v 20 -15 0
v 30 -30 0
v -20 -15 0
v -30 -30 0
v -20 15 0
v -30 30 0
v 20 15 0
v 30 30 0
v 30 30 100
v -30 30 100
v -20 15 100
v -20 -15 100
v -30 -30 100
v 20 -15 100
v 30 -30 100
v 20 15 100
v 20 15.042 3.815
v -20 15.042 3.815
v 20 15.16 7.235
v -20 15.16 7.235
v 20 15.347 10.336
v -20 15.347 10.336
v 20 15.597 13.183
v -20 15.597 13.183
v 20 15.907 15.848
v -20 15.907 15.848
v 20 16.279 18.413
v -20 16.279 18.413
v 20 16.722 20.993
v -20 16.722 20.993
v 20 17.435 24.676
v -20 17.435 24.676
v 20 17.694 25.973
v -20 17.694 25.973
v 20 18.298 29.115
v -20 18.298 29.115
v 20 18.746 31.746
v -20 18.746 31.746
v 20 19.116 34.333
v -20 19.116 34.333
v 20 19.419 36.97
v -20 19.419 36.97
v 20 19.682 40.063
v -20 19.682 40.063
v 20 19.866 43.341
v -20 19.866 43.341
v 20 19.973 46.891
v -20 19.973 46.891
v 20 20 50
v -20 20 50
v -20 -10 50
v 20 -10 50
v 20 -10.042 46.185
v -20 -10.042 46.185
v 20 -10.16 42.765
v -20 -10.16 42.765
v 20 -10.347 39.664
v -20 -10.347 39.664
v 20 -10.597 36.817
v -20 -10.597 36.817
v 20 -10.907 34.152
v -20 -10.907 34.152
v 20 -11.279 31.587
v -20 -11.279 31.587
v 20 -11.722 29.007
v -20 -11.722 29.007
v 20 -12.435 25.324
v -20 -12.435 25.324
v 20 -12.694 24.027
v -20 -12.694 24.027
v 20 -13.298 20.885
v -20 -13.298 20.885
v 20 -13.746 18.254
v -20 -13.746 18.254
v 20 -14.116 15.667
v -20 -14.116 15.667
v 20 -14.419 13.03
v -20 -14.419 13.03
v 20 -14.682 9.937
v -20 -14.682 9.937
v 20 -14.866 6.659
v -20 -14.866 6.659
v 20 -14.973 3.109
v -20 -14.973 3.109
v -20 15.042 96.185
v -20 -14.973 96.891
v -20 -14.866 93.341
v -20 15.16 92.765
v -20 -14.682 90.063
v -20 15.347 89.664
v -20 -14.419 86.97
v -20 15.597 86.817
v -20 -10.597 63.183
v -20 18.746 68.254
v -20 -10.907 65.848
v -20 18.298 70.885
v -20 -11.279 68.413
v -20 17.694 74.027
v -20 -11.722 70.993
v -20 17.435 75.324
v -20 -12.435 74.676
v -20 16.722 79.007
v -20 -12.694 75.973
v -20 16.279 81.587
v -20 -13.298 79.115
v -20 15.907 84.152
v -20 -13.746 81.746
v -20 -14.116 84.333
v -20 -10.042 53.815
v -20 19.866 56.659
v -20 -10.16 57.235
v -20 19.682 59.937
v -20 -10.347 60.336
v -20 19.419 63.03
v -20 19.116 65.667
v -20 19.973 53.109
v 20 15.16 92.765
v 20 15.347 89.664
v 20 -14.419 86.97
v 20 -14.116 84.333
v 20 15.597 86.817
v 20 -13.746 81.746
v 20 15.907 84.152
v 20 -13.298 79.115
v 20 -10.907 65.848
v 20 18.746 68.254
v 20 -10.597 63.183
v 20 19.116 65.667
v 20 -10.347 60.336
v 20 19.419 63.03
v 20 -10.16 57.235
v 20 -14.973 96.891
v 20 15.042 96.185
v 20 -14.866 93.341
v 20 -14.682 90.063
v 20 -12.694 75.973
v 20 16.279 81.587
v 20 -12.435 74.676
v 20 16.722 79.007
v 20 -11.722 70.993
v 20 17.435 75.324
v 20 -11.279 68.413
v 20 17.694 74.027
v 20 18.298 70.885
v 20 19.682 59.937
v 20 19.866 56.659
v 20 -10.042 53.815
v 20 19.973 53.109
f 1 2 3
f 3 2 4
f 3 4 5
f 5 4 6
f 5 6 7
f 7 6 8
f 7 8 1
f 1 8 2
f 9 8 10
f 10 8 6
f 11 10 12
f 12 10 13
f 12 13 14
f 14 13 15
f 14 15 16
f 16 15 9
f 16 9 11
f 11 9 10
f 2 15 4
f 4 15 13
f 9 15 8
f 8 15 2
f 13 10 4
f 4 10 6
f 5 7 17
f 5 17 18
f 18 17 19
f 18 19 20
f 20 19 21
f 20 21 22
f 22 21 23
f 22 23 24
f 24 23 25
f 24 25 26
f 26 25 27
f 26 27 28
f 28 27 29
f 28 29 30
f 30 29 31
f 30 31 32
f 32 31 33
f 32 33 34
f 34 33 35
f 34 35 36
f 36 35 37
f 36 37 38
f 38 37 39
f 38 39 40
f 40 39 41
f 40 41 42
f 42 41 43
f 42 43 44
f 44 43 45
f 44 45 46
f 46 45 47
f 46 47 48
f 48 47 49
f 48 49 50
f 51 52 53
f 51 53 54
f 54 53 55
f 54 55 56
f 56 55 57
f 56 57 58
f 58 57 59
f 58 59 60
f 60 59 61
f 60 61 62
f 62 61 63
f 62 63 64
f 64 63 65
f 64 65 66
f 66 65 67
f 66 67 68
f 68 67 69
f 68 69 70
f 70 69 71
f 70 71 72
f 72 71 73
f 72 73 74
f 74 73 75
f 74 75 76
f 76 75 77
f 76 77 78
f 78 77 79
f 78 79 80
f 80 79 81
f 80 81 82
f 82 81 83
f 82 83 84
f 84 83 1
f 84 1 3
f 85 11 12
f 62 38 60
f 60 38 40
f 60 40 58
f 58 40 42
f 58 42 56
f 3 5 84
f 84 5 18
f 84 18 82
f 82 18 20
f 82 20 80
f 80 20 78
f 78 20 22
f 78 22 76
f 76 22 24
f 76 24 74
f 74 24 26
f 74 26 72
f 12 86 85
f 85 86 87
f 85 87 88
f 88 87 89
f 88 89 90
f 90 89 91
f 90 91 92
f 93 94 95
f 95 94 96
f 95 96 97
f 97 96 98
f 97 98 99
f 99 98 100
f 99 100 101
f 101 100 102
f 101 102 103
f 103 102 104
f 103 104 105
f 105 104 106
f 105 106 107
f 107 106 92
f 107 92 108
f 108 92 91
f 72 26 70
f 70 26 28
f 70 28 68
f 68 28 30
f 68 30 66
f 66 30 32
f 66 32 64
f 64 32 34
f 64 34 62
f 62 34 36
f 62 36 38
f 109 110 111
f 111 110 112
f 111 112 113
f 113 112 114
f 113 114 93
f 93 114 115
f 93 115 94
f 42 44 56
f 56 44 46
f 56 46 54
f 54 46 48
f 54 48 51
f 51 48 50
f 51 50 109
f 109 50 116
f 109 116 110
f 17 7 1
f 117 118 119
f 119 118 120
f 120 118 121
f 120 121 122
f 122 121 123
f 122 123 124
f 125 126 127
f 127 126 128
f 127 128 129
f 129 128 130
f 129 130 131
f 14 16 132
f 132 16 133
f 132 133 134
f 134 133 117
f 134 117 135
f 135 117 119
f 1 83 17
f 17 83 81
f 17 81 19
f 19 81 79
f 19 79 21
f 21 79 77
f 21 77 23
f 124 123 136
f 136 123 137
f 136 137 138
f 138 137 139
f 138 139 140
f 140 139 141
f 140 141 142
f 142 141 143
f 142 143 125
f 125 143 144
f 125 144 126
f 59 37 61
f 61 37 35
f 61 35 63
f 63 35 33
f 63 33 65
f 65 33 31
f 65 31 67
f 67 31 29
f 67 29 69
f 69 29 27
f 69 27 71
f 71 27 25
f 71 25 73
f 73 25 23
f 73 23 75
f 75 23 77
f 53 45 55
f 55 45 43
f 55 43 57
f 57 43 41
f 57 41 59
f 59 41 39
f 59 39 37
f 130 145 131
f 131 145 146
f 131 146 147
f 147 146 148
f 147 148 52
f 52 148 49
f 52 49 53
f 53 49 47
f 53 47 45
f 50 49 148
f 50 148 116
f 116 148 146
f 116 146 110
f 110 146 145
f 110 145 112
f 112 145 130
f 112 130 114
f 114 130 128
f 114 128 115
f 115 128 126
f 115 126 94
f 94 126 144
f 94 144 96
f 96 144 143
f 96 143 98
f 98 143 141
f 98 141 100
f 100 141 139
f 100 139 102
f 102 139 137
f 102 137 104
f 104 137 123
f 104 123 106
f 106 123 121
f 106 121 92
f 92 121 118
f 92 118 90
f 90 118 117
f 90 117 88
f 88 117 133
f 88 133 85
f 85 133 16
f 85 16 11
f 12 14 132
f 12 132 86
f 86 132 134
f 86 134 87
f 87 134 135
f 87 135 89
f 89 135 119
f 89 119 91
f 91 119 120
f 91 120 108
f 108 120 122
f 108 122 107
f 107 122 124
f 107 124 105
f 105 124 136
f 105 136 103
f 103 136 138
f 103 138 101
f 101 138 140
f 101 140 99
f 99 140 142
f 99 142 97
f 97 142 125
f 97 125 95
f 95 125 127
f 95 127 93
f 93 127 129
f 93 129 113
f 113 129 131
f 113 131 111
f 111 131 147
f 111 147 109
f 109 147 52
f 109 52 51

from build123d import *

# Parameters (mm, degrees)
SKETCH1_W           = 100
SKETCH1_H           = 60
BOSS_EXTRUDE1_DEPTH = 30
CUT_EXTRUDE1_DEPTH  = 20


with BuildPart() as part:
    # Sketch1 → Boss-Extrude1 (new, symmetric)
    with BuildSketch(Plane(origin=(0, 0, 0), x_dir=(0, 0, -1), z_dir=(1, 0, 0))):
        with Locations((-50, 0)):
            Rectangle(SKETCH1_W, SKETCH1_H)
    extrude(amount=BOSS_EXTRUDE1_DEPTH, both=True)

    # Sketch2 → Cut-Extrude1 (cut, symmetric)
    with BuildSketch(Plane(origin=(0, 0, 0), x_dir=(0, 0, -1), z_dir=(1, 0, 0))):
        with BuildLine():
            Line((0, 15), (0, -15))
            add(Edge.make_bspline(
                [(0, -15), (-25, -15), (-25, -10), (-50, -10)],
                knots=[0, 0, 0, 0, 1, 1, 1, 1], degree=3))
            Line((-50, -10), (-50, 20))
            add(Edge.make_bspline(
                [(0, 15), (-25, 15), (-25, 20), (-50, 20)],
                knots=[0, 0, 0, 0, 1, 1, 1, 1], degree=3))
        make_face()
    cut_extrude1 = extrude(amount=CUT_EXTRUDE1_DEPTH, both=True, mode=Mode.SUBTRACT)

    # Mirror1: Cut-Extrude1 across plane
    add(cut_extrude1.mirror(Plane(origin=(-20, 20, 50), x_dir=(1, 0, 0), z_dir=(0, 0, 1))), mode=Mode.SUBTRACT)


solid = part.part
